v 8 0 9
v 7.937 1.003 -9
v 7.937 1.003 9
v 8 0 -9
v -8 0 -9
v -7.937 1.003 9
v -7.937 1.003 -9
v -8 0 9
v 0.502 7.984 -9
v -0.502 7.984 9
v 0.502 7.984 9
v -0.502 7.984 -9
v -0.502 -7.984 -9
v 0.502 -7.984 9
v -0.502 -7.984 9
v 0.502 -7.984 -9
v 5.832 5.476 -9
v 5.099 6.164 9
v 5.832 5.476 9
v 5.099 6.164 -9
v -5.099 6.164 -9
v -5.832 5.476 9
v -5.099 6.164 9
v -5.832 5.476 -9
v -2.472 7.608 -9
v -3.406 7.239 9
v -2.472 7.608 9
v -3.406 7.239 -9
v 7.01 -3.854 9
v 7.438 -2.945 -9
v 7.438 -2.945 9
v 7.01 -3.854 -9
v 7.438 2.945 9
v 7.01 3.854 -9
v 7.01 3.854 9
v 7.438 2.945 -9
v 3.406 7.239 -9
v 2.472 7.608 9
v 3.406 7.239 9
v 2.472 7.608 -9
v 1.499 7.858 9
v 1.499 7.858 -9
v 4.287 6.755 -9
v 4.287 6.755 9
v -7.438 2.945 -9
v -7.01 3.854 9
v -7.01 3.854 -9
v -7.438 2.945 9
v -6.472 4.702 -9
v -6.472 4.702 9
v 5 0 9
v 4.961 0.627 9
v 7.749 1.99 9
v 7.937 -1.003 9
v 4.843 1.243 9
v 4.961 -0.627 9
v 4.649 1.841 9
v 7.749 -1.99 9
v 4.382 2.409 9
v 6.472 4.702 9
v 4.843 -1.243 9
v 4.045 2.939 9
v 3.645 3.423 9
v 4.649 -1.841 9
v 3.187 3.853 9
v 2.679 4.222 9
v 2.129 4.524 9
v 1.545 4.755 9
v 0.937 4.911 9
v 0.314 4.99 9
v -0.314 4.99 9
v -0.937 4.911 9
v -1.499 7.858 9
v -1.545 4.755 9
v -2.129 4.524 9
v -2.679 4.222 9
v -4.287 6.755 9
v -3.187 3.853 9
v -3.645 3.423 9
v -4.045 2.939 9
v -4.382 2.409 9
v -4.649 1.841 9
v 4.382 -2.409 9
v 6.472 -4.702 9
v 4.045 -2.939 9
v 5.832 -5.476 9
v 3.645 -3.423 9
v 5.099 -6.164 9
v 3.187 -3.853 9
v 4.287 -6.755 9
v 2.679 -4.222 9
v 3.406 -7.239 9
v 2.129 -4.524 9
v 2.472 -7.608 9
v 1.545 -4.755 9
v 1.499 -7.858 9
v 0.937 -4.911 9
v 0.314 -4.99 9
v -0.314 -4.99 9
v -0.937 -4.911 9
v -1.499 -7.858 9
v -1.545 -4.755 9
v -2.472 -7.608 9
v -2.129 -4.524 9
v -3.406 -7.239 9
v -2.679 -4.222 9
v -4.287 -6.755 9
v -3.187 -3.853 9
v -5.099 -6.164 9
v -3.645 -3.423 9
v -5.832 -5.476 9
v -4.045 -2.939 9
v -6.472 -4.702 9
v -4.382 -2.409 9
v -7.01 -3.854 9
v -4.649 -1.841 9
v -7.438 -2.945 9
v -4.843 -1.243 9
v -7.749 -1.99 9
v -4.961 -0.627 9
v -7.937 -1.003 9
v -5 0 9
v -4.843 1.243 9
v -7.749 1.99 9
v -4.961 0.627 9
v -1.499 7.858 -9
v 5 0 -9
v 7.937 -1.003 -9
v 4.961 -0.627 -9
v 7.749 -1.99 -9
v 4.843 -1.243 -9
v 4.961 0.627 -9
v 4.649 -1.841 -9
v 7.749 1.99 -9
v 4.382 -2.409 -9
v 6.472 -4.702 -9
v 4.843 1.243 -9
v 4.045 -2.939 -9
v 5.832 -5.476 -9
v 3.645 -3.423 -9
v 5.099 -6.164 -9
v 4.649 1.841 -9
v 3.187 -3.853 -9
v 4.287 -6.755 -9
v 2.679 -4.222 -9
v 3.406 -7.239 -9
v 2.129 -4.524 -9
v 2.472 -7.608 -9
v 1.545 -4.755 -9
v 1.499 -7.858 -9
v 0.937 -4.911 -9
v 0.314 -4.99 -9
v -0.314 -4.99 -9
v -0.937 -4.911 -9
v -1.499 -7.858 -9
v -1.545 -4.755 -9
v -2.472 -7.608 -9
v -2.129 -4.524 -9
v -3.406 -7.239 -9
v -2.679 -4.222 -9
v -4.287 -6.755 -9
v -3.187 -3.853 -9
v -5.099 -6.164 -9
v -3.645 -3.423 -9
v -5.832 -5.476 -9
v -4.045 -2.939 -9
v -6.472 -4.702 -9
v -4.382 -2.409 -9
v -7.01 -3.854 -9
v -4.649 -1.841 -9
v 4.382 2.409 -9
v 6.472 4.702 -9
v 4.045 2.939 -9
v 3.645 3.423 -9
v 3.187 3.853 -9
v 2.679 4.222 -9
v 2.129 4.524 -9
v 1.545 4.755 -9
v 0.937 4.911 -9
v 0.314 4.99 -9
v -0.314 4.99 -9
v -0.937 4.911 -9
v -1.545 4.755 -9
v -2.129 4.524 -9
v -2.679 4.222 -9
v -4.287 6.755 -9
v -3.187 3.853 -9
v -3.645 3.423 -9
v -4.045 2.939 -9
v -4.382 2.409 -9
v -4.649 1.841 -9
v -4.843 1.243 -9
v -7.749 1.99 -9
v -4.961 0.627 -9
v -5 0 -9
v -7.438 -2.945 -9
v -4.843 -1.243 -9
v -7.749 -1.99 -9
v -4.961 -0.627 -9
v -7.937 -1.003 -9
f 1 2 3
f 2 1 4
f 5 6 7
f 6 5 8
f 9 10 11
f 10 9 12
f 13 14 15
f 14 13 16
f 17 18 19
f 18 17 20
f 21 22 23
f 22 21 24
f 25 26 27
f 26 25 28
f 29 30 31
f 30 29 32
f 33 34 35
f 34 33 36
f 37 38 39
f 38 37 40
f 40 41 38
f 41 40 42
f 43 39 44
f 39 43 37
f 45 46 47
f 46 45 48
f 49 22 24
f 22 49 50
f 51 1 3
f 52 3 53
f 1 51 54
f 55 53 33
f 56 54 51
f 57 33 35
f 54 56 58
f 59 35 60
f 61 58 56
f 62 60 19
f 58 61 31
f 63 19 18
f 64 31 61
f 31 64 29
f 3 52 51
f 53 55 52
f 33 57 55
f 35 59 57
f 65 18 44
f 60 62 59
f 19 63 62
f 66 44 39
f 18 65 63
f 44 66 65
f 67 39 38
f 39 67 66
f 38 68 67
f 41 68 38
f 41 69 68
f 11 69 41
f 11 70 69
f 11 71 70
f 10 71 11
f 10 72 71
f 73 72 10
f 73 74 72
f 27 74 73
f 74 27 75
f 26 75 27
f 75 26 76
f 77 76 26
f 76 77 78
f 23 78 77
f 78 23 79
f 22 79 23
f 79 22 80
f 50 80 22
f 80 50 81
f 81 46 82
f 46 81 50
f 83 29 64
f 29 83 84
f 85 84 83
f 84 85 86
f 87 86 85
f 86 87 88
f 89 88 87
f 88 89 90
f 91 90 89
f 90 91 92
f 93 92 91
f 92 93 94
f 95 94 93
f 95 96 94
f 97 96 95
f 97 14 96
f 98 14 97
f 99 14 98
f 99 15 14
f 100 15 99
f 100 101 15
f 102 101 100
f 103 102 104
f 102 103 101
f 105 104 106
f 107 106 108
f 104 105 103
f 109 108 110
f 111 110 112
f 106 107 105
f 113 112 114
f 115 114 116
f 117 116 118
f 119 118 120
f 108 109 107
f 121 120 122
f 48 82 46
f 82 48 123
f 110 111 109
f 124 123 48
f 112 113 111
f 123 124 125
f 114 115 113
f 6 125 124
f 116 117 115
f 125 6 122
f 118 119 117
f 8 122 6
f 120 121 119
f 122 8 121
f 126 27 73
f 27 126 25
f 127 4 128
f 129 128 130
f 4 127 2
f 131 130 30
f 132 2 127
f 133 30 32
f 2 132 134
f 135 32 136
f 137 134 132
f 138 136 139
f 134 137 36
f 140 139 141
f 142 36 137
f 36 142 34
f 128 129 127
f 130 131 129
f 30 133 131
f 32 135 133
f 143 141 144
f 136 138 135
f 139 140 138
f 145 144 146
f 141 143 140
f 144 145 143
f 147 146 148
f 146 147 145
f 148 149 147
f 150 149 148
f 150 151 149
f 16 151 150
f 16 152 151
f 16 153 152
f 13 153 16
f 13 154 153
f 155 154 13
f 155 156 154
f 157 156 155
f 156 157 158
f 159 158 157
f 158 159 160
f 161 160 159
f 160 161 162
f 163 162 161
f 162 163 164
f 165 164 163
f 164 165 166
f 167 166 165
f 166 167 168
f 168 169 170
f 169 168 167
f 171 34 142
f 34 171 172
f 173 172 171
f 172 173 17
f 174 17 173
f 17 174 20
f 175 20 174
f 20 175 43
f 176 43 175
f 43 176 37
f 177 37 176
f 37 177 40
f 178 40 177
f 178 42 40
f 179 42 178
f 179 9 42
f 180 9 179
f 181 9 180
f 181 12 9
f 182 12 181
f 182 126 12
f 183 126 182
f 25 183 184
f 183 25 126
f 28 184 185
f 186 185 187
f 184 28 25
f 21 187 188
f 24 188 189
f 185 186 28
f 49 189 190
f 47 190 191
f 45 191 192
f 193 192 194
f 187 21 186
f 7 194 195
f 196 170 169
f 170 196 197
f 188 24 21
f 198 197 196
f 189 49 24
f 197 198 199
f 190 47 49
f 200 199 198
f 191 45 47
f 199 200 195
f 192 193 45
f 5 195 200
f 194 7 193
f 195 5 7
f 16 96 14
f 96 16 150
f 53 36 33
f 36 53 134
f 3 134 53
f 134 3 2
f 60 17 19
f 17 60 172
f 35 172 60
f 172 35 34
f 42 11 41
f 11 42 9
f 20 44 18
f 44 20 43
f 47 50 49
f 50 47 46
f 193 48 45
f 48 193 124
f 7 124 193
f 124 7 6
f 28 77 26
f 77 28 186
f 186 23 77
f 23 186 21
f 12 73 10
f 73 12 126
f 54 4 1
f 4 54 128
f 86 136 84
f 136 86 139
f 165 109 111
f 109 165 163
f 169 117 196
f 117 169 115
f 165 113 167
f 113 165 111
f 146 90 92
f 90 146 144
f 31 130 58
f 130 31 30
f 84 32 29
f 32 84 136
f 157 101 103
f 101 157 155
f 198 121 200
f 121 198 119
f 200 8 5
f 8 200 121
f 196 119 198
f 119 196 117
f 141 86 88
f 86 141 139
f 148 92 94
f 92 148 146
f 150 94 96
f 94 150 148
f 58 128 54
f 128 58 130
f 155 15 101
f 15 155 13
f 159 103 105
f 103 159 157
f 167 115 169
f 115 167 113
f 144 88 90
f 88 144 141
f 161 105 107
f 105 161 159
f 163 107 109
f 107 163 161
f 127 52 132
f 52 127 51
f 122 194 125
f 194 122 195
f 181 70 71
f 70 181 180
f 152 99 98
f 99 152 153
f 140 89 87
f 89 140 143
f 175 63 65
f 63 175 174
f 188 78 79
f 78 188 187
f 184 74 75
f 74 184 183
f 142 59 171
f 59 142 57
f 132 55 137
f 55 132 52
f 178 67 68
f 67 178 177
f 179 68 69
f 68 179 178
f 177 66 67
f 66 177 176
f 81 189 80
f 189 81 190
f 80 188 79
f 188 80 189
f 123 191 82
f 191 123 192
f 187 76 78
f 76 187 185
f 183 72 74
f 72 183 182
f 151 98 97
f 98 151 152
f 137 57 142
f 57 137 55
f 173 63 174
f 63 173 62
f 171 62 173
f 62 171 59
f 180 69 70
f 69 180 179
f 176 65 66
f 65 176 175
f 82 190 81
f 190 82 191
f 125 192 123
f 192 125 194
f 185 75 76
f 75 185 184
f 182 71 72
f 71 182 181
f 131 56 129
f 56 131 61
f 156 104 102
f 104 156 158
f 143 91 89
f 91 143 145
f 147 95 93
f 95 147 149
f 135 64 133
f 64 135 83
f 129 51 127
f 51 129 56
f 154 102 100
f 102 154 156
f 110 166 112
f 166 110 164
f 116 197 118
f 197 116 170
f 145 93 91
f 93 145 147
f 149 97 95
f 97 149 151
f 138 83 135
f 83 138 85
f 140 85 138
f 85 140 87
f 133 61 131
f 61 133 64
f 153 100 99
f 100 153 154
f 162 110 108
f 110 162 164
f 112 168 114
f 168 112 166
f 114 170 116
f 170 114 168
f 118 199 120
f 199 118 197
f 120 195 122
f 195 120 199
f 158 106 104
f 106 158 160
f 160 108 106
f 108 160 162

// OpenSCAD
$fn = 50;


difference() {
	union() {
		translate(v = [0, 0, -9.0000000000]) {
			cylinder(h = 18, r = 8.0000000000);
		}
	}
	union() {
		translate(v = [0, 0, -100.0000000000]) {
			cylinder(h = 200, r = 5.0000000000);
		}
	}
}
